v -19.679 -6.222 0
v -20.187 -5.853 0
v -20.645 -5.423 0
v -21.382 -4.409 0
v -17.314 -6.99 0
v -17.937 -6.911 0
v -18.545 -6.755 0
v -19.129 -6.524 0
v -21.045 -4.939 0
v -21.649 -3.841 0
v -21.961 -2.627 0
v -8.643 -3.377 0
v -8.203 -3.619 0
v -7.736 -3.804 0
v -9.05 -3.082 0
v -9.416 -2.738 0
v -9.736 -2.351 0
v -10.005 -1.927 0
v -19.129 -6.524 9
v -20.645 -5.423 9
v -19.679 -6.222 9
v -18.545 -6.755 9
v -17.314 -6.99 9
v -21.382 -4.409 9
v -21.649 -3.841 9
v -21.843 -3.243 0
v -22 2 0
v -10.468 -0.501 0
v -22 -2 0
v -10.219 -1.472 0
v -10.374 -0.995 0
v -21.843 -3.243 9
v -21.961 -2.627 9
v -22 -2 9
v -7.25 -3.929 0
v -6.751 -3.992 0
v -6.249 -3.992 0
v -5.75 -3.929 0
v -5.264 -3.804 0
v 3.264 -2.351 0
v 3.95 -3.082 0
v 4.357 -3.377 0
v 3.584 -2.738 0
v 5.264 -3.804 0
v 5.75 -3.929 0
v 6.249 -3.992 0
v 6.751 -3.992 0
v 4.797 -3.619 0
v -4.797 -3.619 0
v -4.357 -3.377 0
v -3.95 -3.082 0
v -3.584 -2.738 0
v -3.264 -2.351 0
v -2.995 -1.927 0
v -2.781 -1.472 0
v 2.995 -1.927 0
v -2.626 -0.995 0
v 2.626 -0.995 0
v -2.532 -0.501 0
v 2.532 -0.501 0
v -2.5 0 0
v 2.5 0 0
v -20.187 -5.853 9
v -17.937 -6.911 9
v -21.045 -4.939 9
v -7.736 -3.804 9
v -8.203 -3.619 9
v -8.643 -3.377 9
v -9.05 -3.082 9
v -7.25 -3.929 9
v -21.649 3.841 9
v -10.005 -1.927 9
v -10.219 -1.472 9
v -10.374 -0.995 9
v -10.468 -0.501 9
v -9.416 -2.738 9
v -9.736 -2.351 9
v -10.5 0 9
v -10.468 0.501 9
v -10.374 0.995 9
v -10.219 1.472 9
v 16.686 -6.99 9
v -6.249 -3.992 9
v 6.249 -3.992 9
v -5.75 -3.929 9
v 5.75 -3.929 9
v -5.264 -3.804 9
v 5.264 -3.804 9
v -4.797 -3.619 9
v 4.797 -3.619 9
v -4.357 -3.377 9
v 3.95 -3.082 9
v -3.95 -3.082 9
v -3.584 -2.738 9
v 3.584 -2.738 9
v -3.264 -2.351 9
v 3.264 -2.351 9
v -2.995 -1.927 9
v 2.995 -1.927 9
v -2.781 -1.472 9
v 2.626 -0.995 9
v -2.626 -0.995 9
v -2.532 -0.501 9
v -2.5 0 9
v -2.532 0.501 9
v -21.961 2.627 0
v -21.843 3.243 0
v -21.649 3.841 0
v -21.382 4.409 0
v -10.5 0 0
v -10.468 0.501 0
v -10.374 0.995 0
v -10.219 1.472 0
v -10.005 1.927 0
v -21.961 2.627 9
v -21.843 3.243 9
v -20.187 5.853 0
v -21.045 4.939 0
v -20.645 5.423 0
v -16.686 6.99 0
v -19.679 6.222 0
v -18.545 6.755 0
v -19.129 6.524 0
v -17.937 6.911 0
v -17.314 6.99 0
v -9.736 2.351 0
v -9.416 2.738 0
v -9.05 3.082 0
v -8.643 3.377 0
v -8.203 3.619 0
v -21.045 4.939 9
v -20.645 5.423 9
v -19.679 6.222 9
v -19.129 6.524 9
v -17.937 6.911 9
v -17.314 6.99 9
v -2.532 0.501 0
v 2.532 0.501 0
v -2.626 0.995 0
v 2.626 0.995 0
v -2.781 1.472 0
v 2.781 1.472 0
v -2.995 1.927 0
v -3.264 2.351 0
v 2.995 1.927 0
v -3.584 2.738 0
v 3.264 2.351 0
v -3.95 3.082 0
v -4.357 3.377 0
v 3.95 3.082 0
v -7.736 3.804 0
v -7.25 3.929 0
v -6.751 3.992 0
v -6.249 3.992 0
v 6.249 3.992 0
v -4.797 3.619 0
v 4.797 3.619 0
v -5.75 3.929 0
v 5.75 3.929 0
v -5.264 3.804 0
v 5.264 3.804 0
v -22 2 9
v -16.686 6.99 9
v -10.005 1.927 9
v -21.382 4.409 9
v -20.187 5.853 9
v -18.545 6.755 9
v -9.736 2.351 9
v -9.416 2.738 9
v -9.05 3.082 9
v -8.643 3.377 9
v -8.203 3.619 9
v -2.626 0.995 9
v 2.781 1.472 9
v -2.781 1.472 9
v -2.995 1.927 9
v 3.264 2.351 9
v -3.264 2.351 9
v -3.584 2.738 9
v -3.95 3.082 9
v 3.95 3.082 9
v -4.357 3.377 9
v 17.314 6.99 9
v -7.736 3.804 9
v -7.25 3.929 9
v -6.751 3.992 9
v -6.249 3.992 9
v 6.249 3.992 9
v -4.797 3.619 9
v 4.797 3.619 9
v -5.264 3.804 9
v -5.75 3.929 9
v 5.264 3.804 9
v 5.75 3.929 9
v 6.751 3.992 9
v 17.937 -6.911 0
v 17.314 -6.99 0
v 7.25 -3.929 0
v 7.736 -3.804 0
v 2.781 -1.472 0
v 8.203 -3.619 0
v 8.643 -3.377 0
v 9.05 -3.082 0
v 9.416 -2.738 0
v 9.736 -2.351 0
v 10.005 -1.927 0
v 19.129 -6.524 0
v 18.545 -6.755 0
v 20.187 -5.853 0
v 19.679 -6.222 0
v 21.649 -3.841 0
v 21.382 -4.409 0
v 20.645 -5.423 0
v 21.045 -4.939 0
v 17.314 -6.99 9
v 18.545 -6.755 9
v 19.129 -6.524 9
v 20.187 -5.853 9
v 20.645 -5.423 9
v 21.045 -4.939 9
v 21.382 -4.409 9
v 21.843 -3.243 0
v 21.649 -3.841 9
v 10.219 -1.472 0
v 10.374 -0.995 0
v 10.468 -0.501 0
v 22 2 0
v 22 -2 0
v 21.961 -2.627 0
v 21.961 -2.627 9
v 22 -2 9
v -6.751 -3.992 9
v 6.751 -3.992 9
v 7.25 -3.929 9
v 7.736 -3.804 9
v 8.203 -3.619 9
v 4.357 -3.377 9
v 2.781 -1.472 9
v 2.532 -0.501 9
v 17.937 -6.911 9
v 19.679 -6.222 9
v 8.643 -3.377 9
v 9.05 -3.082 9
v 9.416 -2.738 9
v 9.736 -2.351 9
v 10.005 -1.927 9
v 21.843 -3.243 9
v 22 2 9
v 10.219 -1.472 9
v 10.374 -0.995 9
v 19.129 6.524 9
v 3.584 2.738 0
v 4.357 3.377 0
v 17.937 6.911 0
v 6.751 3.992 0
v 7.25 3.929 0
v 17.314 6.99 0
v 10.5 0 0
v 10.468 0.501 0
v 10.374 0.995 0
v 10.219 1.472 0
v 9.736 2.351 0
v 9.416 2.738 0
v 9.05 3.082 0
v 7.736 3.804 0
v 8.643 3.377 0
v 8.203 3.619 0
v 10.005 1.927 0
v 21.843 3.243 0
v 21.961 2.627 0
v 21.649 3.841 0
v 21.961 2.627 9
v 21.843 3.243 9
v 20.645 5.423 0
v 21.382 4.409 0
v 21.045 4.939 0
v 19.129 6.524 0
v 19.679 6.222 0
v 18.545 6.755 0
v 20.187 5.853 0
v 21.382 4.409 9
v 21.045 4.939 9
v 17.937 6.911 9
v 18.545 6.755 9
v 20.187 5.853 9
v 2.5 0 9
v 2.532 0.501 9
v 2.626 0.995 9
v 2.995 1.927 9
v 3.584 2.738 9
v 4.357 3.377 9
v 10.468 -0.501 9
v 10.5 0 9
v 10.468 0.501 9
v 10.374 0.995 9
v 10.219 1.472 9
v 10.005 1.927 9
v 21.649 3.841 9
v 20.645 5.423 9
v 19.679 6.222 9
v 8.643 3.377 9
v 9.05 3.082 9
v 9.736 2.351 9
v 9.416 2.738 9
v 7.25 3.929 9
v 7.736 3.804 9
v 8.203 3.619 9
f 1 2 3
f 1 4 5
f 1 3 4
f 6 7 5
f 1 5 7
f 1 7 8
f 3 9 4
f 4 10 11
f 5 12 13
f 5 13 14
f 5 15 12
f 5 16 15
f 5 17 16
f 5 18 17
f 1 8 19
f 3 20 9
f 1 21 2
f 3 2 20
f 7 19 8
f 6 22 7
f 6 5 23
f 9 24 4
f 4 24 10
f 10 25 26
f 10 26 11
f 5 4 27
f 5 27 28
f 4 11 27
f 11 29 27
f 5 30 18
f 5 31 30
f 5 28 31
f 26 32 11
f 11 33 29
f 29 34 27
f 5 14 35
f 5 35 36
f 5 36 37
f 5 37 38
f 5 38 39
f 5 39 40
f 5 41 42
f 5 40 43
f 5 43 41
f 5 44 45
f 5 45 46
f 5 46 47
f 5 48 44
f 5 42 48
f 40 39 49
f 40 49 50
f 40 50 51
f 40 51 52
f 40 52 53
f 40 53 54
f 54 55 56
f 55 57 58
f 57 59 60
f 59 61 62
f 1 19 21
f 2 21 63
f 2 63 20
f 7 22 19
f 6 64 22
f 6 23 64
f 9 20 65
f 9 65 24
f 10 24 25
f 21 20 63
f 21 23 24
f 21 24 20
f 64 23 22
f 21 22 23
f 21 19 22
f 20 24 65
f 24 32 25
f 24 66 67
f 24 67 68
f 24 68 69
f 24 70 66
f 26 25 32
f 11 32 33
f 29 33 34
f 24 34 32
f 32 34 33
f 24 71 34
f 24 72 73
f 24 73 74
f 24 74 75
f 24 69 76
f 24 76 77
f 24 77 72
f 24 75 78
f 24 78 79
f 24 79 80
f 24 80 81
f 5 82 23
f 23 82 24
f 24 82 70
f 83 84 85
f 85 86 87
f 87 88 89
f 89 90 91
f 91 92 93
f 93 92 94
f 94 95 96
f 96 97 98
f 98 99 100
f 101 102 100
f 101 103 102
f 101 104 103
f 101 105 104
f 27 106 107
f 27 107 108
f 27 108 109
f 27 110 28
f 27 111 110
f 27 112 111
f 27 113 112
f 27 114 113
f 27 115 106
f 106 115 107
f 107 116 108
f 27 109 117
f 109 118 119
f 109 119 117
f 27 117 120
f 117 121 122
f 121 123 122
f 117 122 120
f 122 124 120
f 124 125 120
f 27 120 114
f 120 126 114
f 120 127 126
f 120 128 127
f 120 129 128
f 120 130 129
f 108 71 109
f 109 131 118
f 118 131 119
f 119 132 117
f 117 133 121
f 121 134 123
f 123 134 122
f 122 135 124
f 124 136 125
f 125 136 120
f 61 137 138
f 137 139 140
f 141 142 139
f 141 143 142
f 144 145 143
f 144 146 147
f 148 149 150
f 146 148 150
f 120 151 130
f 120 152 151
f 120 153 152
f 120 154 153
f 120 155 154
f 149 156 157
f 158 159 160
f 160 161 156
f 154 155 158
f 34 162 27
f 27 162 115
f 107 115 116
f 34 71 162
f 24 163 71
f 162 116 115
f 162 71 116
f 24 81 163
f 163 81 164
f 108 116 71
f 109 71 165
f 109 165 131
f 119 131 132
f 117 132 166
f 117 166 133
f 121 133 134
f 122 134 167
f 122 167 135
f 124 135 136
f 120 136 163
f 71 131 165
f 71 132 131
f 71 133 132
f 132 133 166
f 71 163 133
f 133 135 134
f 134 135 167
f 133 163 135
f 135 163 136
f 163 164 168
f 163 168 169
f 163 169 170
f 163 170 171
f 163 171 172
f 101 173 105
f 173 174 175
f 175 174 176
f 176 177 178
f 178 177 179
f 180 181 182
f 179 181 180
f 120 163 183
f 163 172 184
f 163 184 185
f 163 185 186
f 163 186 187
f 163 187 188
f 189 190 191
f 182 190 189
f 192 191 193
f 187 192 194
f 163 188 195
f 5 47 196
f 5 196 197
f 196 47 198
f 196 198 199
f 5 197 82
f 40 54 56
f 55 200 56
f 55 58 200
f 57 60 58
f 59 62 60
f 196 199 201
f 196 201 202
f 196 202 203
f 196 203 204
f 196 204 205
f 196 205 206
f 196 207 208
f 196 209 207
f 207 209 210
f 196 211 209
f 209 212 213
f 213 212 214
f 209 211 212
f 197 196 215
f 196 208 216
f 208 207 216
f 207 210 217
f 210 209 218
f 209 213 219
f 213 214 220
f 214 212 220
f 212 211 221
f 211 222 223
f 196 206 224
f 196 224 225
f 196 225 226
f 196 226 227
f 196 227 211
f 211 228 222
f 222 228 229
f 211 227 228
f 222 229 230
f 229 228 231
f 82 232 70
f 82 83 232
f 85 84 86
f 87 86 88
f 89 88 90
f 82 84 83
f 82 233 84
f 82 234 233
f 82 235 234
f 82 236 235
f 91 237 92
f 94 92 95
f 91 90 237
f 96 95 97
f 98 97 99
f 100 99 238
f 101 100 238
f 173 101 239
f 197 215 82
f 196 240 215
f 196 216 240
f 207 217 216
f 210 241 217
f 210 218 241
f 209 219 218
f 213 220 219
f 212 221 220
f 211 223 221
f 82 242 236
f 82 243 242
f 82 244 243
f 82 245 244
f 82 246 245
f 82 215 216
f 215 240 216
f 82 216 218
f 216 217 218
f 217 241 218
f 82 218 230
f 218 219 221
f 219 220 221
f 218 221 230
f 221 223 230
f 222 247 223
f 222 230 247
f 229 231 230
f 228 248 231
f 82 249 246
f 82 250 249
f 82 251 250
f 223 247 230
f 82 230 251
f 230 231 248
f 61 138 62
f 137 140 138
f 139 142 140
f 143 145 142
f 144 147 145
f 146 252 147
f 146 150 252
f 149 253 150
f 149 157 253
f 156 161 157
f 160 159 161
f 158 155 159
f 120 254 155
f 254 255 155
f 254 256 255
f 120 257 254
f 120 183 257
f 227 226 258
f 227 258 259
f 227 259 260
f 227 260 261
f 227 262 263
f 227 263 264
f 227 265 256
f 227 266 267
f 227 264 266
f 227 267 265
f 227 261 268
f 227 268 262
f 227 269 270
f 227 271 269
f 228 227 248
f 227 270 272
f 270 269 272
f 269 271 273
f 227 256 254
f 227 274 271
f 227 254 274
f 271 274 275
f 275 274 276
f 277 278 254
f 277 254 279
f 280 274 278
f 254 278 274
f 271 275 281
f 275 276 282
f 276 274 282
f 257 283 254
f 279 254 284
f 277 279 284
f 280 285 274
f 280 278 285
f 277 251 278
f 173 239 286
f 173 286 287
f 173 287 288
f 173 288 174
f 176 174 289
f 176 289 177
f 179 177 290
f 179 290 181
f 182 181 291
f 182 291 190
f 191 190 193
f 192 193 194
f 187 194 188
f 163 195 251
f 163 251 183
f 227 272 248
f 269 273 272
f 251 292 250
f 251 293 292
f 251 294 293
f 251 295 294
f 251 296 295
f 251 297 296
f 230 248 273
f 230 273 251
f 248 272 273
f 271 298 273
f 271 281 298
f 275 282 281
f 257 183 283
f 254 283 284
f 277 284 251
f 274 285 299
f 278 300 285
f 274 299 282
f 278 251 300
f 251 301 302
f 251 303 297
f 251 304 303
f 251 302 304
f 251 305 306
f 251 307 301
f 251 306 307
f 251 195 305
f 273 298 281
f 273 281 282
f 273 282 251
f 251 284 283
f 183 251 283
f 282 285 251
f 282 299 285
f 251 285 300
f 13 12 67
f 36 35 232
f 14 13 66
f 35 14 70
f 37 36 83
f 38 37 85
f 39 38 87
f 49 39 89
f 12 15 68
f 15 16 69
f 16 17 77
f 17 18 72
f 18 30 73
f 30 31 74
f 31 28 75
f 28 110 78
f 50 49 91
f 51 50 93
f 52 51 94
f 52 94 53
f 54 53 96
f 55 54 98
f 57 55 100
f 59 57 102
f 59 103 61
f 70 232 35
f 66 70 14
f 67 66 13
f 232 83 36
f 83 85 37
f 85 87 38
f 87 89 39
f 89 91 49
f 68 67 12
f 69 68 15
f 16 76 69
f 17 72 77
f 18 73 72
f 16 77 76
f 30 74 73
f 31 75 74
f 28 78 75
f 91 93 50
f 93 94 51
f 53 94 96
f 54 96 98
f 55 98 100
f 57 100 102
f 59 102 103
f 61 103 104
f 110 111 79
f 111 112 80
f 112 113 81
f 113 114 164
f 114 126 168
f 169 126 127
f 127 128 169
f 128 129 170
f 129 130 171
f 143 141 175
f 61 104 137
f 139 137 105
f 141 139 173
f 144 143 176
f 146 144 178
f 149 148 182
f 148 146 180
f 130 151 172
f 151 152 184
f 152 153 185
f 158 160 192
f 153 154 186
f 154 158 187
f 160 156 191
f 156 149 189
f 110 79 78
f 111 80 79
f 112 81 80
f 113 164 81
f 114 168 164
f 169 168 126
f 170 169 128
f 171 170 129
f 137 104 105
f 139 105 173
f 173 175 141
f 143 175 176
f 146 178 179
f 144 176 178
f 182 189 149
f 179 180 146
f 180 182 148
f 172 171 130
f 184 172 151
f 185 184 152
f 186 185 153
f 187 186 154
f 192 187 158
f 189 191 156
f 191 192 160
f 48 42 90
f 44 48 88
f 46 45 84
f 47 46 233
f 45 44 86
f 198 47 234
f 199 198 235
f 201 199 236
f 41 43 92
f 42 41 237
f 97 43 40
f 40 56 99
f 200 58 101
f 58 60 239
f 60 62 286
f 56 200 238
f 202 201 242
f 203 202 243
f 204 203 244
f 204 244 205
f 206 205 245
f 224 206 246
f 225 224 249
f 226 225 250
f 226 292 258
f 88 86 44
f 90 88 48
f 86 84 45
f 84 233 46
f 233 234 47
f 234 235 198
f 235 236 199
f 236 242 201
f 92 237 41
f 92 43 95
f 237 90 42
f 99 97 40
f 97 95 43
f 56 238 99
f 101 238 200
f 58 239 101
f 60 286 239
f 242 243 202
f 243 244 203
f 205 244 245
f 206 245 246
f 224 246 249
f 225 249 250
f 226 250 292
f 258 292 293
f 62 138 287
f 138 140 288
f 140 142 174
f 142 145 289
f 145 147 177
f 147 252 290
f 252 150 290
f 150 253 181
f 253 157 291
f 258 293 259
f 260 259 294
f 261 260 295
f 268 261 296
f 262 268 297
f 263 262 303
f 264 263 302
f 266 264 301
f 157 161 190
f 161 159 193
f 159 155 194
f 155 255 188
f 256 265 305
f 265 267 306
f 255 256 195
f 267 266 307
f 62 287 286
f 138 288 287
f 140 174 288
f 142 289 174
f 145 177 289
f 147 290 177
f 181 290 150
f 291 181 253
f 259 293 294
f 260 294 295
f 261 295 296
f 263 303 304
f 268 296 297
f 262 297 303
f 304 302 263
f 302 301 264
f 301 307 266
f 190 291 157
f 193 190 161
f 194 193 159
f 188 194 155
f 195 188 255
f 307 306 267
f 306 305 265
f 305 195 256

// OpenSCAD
$fn = 50;

difference() {
	union() {
		hull() {
			translate(v = [-17.0, 2.0, 0]) {
				cylinder(h = 9, r = 5);
			}
			translate(v = [17.0, 2.0, 0]) {
				cylinder(h = 9, r = 5);
			}
			translate(v = [-17.0, -2.0, 0]) {
				cylinder(h = 9, r = 5);
			}
			translate(v = [17.0, -2.0, 0]) {
				cylinder(h = 9, r = 5);
			}
		}
	}
	union() {
		translate(v = [-6.5, 0, 0.0]) {
			cylinder(h = 9, r = 4.0);
		}
		translate(v = [6.5, 0, 0.0]) {
			cylinder(h = 9, r = 4.0);
		}
	}
}
